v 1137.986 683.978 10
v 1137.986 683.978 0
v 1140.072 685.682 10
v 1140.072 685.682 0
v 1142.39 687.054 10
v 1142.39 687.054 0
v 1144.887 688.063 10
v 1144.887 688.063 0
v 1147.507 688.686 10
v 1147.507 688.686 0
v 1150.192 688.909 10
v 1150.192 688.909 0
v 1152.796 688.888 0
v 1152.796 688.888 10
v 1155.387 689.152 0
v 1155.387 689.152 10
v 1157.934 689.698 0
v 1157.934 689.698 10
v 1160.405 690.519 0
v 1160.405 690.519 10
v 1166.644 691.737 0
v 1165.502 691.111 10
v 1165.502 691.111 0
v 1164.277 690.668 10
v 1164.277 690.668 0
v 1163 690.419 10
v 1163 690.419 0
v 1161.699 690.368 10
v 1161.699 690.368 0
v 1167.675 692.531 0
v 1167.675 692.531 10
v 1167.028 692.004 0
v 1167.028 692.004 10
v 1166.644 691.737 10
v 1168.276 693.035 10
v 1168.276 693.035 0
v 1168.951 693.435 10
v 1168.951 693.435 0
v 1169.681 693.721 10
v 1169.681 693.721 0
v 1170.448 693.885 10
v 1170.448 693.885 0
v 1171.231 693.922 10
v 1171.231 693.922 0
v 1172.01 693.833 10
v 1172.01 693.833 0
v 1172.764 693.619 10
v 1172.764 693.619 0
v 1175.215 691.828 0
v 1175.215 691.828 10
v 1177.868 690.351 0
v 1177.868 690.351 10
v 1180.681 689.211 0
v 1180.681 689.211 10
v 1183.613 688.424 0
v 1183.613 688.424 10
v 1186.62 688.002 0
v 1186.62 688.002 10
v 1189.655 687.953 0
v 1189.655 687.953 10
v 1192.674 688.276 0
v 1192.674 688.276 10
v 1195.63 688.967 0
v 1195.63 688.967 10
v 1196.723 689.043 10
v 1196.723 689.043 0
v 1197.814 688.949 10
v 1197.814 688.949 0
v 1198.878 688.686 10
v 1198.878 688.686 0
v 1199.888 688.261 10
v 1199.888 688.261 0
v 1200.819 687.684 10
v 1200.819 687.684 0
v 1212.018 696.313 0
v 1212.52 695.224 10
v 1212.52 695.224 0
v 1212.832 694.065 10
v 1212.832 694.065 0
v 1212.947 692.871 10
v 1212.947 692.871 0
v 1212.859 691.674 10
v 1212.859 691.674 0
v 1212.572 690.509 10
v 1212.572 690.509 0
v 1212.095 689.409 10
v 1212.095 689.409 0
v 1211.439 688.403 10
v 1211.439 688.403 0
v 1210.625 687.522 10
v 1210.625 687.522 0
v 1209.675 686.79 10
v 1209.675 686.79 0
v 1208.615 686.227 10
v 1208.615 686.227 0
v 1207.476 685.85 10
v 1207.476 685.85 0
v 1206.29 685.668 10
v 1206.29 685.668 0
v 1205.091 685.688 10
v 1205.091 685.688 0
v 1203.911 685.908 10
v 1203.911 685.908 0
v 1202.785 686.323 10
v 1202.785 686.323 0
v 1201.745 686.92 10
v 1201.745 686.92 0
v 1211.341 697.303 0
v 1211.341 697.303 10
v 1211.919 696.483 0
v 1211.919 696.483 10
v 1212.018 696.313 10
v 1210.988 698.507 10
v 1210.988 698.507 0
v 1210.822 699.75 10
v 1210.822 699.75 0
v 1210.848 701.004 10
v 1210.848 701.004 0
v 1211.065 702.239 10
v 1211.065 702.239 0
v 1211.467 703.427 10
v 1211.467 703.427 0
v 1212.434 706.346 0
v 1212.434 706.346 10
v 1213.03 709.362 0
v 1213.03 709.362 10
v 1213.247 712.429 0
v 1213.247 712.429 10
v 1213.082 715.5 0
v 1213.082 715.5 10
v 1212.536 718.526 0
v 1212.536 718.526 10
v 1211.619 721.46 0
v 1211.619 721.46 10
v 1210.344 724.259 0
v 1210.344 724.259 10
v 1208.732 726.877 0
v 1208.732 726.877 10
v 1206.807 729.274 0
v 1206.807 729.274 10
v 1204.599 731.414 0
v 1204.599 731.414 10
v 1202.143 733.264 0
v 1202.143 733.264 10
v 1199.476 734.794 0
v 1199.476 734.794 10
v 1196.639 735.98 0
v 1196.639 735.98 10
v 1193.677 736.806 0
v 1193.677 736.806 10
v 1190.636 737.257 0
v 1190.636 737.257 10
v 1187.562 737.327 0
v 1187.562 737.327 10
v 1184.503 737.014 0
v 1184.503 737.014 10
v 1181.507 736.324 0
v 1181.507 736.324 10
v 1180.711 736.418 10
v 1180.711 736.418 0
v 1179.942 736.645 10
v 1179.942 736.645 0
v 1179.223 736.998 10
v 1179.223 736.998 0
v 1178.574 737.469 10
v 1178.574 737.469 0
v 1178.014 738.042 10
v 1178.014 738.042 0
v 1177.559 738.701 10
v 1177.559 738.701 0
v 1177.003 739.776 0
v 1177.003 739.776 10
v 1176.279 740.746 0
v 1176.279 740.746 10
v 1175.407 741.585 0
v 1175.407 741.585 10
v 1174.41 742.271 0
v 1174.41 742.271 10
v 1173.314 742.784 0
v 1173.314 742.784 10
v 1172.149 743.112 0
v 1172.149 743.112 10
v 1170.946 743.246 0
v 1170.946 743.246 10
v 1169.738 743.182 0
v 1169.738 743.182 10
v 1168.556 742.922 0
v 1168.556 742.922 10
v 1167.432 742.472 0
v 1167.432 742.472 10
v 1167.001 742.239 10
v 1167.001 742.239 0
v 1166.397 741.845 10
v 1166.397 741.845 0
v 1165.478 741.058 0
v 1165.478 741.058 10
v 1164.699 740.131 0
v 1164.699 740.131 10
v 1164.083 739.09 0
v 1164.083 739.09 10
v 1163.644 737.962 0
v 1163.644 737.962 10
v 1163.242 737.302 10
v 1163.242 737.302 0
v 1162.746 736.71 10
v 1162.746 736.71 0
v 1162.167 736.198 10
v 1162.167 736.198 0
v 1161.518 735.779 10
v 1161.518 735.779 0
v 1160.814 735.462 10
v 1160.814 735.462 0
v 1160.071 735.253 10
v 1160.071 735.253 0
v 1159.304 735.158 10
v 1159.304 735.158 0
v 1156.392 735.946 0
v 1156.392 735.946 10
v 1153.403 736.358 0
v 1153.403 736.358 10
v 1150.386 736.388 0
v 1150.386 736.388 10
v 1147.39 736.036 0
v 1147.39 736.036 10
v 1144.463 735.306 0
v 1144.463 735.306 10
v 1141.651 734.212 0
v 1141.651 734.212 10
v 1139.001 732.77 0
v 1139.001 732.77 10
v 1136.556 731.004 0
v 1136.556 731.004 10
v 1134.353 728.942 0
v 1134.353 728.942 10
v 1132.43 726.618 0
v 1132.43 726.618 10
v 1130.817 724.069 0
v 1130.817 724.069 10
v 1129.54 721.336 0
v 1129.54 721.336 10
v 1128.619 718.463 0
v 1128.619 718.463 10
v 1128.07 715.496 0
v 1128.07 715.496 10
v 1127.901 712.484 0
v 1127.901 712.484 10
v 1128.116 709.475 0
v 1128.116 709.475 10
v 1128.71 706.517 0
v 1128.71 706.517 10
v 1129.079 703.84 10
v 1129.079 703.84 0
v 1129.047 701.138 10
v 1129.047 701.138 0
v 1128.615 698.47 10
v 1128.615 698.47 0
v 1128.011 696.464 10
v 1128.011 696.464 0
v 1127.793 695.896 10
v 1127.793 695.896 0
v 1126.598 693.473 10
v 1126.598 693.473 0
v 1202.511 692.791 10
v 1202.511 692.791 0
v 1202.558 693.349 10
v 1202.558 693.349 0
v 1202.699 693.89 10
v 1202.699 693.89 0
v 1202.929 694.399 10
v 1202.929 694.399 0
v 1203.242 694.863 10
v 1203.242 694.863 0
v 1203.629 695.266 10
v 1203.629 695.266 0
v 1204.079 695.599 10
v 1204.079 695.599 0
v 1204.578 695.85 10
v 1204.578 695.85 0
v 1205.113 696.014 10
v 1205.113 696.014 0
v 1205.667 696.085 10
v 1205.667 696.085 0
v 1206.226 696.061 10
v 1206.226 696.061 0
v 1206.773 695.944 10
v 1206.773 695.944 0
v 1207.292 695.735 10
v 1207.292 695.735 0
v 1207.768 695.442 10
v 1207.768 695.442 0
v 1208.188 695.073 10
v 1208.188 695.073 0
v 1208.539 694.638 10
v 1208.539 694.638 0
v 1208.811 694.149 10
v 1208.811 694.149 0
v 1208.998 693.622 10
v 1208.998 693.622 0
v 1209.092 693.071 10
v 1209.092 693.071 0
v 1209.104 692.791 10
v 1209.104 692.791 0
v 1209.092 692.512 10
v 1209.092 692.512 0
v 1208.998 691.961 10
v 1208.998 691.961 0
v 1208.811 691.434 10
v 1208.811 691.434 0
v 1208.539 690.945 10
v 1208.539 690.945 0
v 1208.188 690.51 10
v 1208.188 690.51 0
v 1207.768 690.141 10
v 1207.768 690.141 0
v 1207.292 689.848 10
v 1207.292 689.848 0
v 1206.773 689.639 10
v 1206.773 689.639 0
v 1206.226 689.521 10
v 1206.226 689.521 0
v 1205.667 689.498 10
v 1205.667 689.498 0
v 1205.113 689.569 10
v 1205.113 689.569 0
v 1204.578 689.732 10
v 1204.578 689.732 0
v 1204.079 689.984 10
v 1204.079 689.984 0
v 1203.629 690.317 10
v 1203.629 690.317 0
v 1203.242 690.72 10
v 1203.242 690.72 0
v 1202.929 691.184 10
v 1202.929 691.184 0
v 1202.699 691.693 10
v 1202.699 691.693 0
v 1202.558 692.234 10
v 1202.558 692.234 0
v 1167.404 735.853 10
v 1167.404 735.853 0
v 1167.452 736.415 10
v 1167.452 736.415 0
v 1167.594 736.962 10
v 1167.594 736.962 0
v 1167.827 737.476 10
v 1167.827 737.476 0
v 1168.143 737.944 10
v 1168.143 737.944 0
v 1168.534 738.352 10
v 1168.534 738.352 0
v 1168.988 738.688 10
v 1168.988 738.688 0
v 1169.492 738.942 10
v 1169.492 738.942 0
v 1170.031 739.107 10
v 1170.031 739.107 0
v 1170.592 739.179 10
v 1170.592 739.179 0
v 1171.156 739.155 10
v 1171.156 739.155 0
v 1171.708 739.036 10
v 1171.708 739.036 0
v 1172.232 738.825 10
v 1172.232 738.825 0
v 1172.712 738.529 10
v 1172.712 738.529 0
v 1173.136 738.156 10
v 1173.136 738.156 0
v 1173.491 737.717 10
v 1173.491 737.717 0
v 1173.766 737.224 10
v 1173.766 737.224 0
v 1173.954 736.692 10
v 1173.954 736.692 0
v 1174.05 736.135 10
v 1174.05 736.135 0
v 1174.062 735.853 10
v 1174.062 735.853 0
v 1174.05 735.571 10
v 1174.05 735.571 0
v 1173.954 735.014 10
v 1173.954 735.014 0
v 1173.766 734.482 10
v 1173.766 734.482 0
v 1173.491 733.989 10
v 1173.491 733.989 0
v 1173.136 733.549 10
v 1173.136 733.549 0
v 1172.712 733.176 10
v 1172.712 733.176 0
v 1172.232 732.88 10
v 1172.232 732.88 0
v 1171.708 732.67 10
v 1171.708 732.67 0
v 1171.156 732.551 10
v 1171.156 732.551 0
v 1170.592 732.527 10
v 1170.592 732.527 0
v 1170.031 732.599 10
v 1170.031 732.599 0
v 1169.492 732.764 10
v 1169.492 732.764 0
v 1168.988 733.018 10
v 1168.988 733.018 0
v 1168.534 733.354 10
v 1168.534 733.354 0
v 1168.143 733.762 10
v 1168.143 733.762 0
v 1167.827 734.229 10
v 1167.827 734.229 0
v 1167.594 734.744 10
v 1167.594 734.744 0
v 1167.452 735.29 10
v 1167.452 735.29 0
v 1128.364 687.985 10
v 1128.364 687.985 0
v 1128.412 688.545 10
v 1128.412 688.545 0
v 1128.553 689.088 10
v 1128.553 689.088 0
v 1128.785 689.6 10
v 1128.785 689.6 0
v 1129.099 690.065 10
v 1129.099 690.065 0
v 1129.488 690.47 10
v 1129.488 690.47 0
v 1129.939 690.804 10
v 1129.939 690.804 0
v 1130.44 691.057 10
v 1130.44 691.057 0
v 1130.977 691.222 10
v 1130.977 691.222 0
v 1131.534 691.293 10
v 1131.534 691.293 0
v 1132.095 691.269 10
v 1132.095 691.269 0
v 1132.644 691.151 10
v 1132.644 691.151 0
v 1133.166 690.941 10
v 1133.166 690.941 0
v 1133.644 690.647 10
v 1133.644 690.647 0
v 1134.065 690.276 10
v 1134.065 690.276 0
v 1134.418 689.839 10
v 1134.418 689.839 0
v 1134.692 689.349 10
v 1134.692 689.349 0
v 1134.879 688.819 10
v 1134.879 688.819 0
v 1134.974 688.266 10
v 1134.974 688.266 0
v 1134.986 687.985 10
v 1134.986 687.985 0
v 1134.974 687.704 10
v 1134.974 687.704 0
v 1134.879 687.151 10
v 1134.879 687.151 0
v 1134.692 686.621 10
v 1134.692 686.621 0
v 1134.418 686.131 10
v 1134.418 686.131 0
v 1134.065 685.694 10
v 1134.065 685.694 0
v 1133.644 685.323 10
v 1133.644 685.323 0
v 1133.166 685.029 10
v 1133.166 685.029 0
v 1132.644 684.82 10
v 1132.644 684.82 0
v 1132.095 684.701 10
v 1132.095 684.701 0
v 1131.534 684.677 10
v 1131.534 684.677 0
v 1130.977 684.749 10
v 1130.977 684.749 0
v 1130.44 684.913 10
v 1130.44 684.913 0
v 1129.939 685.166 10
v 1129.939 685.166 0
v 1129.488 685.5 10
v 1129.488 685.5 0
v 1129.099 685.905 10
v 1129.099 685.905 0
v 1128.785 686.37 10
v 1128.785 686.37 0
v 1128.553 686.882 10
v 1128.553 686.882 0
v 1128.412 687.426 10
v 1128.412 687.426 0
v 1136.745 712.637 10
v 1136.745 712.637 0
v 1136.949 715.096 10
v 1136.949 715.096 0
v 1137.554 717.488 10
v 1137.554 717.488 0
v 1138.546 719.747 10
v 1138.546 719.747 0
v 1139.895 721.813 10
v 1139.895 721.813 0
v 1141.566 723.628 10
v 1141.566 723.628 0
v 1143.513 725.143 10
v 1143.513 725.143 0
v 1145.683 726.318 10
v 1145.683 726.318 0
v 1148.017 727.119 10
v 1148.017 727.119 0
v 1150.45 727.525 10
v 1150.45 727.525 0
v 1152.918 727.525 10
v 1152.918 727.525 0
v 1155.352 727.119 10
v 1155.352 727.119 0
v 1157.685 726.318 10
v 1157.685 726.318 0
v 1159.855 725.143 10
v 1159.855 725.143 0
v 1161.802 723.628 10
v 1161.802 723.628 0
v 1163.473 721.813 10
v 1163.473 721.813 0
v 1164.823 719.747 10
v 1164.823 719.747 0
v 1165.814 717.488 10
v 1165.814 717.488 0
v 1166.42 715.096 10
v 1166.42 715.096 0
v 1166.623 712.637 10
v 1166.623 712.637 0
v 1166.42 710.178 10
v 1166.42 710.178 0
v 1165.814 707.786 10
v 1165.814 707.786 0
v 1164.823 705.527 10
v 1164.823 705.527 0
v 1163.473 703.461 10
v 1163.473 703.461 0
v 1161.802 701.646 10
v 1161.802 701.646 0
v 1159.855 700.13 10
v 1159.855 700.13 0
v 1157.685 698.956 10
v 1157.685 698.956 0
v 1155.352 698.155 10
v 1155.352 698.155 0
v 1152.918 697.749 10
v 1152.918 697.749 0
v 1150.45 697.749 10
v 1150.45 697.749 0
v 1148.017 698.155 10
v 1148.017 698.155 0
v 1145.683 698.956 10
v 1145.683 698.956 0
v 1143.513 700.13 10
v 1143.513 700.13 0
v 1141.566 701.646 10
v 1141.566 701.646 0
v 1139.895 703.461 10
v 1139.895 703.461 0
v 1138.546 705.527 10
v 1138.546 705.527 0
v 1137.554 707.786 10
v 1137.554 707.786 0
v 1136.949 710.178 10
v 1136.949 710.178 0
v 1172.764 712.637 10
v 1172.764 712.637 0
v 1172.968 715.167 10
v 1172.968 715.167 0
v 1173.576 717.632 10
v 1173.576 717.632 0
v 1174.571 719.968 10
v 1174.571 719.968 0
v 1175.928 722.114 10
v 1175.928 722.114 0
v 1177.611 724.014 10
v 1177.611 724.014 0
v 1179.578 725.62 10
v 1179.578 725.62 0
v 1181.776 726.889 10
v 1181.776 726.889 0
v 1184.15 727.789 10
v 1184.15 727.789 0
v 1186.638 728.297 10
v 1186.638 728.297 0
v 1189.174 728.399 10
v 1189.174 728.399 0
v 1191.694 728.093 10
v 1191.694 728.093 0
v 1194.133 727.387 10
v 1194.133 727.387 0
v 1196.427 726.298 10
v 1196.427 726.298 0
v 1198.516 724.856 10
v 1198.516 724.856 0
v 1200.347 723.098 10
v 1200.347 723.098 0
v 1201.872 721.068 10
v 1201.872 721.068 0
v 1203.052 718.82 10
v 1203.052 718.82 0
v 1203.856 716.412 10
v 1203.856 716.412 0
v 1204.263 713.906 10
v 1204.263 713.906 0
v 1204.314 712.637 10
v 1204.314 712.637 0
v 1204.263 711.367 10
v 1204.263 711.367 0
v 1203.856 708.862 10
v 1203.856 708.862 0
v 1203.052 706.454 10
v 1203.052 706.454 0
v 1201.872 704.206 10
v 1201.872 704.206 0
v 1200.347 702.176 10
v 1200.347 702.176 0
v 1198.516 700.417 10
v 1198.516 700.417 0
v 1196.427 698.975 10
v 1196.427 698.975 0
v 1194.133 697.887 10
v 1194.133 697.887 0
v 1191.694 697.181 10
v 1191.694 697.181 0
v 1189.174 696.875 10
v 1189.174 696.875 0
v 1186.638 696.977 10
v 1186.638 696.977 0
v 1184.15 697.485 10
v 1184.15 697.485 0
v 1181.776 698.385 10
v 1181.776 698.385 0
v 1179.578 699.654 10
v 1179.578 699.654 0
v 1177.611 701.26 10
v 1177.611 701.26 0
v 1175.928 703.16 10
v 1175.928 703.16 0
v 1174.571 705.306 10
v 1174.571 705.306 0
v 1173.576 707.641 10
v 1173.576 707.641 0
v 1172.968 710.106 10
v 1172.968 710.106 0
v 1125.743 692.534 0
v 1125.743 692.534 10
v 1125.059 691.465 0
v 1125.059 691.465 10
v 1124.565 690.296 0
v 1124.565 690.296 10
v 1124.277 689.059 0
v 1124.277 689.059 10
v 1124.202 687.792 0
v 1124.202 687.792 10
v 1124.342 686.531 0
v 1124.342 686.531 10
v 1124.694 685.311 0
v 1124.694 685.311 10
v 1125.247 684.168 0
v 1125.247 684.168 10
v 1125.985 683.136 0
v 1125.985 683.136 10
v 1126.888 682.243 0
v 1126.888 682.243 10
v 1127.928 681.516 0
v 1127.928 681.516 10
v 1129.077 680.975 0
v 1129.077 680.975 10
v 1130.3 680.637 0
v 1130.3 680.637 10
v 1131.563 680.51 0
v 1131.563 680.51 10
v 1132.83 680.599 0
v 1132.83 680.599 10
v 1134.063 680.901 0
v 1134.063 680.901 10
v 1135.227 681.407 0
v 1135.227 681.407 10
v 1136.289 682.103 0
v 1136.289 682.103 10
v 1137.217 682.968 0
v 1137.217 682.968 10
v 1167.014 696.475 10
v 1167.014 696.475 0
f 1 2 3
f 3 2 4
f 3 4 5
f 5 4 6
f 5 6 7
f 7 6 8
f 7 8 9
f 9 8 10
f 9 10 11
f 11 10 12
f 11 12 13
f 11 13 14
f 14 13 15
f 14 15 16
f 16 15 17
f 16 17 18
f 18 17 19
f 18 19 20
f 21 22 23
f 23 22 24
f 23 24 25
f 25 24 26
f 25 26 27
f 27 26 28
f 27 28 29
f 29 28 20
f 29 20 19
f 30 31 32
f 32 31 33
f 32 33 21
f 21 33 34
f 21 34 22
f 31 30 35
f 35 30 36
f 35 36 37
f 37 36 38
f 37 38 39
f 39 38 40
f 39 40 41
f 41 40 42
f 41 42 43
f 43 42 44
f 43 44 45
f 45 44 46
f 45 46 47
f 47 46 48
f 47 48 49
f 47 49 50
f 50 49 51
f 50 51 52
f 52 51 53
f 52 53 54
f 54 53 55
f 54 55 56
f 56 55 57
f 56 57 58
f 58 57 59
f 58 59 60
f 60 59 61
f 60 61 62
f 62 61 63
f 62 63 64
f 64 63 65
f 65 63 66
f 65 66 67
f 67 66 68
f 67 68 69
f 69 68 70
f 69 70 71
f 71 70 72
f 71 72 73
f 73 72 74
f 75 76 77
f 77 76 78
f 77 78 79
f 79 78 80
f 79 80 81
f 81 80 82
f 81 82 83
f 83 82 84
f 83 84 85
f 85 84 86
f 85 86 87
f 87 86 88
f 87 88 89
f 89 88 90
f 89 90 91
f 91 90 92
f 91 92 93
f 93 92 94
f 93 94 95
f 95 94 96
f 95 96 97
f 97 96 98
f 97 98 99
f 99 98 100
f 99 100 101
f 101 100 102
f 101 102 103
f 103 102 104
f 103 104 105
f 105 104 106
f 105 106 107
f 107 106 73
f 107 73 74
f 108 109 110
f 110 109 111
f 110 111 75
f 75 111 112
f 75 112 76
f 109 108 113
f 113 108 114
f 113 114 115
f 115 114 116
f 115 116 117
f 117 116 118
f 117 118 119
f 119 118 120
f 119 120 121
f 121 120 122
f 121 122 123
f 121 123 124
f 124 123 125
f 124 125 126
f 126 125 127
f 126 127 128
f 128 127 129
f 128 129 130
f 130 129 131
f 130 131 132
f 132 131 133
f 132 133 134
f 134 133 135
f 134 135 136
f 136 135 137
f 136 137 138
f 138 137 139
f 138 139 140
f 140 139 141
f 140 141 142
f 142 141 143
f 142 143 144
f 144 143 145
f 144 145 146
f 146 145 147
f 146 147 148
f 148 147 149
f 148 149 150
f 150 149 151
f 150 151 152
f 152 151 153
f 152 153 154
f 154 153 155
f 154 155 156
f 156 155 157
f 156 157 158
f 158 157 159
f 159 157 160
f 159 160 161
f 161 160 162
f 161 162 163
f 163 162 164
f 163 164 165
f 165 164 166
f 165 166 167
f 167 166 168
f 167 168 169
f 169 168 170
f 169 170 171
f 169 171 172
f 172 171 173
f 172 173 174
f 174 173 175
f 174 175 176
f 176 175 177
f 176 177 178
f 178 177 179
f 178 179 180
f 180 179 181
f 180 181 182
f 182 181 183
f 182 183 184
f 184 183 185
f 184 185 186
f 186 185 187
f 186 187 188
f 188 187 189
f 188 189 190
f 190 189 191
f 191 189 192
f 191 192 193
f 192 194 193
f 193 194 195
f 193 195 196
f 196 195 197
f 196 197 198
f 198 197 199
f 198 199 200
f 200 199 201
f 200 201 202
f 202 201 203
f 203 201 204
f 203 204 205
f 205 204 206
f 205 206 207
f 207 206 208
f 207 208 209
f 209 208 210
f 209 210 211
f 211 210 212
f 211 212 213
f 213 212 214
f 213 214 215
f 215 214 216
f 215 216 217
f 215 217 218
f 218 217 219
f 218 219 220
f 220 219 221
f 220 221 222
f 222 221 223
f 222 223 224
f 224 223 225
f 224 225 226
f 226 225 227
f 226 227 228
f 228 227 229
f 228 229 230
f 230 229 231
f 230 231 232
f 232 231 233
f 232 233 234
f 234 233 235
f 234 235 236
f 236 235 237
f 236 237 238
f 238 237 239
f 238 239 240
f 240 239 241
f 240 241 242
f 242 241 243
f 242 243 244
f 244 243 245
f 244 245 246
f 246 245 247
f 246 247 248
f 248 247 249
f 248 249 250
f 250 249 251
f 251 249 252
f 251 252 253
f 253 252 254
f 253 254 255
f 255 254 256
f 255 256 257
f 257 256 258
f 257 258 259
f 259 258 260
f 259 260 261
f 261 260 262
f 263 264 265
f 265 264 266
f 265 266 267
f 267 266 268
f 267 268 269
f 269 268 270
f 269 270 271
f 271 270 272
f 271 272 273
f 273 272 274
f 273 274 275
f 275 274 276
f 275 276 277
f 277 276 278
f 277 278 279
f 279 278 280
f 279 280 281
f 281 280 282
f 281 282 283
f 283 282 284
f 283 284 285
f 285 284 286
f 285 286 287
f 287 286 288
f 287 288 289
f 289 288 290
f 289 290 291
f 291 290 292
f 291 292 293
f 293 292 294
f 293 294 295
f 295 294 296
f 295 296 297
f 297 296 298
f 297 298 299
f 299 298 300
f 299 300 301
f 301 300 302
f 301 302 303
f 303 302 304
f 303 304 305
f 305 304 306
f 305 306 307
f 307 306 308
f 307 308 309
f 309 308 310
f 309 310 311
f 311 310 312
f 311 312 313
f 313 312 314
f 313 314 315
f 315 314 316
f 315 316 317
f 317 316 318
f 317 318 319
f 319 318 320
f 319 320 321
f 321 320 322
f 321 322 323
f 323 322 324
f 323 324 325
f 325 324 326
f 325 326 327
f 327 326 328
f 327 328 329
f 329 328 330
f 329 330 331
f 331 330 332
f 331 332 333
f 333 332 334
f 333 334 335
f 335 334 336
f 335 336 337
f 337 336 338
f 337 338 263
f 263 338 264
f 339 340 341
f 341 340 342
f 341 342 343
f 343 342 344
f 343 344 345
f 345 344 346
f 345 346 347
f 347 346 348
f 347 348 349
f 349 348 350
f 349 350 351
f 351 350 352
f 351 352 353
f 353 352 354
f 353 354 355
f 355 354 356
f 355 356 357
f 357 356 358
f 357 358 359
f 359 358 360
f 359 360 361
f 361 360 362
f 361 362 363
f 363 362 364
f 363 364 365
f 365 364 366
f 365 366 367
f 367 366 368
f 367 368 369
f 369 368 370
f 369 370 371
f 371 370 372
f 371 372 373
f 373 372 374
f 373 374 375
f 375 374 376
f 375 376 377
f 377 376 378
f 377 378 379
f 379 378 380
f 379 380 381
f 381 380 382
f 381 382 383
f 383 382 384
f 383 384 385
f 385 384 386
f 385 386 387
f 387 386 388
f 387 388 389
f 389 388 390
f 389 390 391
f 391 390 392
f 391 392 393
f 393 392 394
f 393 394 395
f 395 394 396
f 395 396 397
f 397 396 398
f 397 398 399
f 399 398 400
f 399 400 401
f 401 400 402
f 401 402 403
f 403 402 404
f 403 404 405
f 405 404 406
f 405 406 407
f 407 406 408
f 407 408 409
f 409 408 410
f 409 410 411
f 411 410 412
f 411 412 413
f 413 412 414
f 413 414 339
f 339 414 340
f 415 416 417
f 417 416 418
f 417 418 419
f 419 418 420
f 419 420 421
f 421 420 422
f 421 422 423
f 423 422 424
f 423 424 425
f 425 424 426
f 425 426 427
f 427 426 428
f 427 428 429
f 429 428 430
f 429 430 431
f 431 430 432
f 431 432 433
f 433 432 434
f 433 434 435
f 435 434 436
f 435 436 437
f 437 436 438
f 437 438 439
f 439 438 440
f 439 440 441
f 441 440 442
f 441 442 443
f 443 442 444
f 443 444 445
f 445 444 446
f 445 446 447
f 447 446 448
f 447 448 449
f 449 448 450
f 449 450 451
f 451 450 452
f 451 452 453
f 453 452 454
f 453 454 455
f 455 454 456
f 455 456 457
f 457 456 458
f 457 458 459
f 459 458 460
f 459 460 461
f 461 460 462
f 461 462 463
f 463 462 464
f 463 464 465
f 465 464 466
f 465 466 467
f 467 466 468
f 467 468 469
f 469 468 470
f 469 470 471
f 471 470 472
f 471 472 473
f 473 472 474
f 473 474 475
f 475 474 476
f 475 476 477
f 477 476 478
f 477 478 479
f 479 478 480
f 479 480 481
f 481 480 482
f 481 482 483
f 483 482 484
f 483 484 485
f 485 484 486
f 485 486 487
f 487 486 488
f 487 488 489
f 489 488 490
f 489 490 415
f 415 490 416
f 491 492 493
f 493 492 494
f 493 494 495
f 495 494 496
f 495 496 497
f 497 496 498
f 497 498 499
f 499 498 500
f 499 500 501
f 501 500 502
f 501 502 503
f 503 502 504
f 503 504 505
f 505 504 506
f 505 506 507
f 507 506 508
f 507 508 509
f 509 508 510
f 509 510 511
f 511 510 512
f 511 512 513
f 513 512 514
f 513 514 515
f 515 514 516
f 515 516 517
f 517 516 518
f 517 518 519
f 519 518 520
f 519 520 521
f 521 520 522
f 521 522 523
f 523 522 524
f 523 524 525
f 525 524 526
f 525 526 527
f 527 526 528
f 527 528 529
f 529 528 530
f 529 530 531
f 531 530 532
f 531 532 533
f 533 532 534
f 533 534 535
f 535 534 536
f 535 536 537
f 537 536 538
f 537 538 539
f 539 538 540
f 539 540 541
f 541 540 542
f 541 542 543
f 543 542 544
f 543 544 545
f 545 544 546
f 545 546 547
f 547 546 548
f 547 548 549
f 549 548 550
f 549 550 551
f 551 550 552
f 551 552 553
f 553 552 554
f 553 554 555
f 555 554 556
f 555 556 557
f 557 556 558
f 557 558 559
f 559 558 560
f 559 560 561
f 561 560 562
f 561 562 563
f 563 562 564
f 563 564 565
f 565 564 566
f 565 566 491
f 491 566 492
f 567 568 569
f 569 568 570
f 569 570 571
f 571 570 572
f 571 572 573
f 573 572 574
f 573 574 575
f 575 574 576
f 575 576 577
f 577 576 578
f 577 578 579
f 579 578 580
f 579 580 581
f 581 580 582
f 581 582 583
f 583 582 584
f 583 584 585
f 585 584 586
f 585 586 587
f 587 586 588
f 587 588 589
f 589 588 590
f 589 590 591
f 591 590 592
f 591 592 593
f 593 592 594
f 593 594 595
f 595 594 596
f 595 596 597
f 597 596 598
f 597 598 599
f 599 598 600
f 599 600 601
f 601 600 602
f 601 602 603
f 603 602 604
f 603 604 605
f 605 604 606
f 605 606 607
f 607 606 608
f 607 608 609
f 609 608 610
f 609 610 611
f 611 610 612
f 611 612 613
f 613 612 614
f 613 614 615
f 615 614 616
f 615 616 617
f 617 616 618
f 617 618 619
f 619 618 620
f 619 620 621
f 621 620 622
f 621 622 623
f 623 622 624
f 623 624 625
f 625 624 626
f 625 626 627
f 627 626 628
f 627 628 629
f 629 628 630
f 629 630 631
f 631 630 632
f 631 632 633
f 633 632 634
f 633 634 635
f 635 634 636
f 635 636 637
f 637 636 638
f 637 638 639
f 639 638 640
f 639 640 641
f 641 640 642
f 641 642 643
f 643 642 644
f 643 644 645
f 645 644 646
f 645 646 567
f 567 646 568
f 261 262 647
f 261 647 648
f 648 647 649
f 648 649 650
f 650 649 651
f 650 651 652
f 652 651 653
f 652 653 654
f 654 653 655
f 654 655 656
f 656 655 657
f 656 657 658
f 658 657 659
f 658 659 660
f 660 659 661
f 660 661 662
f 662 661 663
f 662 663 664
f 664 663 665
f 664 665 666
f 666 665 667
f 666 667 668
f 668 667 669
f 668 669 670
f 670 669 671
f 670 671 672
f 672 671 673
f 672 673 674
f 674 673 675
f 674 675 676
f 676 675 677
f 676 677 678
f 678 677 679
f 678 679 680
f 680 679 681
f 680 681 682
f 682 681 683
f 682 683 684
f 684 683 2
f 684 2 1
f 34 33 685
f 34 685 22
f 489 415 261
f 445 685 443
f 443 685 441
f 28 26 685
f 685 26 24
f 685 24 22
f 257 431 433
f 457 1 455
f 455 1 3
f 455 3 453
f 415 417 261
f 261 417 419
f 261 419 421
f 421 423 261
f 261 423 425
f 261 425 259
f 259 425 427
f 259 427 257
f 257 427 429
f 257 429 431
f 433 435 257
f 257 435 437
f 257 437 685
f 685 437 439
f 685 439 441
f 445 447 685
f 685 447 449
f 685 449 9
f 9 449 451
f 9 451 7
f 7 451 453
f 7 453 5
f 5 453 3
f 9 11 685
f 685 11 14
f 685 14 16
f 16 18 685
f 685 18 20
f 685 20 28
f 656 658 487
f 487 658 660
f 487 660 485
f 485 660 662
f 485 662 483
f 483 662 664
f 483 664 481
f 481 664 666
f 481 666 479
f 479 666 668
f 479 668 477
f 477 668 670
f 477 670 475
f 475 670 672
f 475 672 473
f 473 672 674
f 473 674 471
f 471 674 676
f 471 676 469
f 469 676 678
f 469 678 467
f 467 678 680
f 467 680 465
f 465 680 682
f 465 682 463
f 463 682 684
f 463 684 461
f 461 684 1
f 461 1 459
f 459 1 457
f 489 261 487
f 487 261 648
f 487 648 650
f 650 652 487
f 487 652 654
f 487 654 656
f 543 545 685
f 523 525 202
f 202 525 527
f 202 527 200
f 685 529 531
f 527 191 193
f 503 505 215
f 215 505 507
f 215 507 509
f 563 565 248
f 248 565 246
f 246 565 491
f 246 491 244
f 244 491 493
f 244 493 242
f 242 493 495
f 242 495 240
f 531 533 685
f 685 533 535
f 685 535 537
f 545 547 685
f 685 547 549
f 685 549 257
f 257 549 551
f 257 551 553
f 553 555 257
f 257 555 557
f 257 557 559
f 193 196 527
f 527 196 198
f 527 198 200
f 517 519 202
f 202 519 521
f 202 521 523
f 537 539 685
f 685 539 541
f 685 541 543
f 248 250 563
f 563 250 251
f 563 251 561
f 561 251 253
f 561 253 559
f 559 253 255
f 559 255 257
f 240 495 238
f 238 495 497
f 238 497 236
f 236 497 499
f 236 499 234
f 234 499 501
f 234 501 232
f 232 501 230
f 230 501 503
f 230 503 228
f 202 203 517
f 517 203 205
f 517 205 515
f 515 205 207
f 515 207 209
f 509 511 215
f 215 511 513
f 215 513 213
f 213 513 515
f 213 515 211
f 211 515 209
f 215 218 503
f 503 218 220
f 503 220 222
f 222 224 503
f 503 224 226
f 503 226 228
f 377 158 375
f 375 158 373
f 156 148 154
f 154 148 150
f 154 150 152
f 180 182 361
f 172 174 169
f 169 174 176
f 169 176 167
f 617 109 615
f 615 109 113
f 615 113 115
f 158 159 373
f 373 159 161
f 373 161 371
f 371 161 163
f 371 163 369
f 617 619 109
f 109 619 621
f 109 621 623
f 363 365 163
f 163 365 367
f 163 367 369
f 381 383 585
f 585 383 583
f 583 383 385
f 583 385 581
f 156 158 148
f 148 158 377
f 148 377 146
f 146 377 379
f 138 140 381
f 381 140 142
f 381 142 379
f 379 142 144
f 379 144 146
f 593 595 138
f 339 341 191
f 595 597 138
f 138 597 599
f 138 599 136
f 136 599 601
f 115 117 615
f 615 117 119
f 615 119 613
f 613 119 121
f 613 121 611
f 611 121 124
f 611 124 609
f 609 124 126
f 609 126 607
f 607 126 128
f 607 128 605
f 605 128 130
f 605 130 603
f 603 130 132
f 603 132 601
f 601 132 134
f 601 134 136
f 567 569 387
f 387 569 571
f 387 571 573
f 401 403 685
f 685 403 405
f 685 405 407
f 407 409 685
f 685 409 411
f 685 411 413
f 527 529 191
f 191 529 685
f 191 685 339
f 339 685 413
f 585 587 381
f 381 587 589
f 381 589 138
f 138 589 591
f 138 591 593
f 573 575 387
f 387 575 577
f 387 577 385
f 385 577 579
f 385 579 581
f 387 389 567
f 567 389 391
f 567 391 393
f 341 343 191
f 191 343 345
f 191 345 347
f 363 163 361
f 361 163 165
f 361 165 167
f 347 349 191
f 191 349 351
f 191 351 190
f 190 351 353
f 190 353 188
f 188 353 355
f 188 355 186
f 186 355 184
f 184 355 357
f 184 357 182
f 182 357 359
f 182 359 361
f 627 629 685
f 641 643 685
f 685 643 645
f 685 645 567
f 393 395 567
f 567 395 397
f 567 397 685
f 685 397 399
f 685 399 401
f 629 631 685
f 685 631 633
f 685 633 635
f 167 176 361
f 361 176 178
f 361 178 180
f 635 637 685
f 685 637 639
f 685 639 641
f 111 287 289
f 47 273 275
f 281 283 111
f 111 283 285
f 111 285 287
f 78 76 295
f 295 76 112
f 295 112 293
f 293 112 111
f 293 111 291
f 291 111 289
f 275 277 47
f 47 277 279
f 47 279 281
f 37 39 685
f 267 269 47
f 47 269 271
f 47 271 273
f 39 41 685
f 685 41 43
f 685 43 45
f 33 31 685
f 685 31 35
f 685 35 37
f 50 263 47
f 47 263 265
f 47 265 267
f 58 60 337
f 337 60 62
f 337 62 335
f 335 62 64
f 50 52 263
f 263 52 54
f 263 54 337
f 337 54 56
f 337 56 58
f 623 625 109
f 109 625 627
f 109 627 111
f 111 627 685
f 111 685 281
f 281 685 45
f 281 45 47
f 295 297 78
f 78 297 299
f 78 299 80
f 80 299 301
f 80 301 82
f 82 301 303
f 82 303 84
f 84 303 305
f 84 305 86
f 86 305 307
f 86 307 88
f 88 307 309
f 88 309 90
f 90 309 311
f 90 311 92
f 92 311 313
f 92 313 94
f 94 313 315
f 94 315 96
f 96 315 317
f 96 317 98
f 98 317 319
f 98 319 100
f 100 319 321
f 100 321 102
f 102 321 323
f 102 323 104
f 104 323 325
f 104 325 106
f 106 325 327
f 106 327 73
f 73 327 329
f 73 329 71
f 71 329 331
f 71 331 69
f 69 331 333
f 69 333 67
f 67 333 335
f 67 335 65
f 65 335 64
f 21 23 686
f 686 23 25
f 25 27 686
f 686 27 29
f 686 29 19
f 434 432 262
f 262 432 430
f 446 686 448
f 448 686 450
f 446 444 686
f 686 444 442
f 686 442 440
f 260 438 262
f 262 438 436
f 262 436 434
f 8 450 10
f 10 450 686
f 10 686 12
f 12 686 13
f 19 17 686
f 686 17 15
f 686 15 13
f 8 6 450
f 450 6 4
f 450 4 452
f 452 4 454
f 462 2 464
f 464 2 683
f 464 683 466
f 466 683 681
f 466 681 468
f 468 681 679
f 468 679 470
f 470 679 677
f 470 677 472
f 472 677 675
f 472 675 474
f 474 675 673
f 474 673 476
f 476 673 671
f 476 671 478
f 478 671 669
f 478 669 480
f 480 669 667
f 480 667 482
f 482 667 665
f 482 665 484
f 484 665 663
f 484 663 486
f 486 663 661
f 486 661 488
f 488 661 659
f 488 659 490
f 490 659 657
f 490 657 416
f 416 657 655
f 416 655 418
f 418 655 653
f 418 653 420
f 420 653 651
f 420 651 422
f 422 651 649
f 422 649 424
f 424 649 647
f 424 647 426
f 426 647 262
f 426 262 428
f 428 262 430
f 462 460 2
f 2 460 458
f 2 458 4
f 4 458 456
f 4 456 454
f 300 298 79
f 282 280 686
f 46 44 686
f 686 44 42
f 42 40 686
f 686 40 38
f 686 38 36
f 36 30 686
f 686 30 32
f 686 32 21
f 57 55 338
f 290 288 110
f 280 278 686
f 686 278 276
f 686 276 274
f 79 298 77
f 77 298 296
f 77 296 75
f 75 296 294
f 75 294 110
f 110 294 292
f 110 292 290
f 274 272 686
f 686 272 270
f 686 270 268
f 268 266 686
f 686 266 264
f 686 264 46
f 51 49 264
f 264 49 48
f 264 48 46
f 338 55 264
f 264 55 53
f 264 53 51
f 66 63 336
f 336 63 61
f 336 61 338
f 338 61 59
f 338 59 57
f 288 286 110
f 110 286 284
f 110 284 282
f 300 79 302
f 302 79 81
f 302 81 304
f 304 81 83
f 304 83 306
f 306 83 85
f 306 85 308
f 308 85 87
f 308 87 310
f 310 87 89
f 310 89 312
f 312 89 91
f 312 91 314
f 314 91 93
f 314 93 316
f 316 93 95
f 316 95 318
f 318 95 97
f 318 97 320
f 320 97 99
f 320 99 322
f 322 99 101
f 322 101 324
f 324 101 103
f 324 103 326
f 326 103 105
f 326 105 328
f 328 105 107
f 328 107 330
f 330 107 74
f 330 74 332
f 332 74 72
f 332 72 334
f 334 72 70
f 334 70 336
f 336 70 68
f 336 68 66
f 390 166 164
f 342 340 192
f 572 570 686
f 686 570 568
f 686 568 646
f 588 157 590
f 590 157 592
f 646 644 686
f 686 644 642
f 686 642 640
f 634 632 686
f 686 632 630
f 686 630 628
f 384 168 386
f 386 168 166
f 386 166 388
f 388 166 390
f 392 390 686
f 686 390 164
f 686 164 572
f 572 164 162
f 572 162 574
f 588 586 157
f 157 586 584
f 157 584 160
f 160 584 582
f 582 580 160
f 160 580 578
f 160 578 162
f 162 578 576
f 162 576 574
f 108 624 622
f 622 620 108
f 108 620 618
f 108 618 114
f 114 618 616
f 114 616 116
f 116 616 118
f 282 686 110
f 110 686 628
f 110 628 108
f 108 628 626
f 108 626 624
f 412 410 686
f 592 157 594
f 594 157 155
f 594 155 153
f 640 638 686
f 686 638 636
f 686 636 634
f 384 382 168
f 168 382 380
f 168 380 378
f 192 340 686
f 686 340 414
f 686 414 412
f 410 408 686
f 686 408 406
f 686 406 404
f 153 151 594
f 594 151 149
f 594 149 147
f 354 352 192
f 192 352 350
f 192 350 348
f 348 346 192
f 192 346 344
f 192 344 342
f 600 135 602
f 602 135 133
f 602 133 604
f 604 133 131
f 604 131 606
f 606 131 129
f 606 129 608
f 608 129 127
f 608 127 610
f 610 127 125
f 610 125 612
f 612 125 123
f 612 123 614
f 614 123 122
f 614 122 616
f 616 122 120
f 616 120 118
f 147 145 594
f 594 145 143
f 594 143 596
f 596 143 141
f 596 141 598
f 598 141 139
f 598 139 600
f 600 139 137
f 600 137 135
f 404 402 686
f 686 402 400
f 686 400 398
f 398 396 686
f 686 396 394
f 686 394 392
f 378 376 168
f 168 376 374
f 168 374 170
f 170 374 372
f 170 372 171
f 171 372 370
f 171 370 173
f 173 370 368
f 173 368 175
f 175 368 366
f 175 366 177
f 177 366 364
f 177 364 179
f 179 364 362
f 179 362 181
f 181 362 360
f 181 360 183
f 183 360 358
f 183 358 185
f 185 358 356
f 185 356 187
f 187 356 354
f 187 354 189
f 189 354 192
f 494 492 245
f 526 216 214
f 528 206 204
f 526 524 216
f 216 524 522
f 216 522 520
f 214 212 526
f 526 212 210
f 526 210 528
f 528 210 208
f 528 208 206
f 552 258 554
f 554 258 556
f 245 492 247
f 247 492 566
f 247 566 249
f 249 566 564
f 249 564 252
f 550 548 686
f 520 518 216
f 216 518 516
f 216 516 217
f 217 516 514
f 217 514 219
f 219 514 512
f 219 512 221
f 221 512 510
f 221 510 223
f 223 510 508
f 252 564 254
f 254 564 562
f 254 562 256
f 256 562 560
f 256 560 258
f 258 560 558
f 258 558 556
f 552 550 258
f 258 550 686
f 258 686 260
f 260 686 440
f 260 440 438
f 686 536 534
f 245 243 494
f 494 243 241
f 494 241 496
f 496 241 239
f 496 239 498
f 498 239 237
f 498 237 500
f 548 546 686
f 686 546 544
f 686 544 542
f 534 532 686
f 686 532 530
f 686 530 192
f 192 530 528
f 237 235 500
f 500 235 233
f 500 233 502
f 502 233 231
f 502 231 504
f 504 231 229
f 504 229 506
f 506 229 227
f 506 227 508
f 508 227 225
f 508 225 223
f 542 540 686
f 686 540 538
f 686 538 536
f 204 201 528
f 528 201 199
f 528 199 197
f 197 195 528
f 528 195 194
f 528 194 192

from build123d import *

# Parameters (mm, degrees)
SKETCH2_R           = 3.310722334
SKETCH2_R_2         = 3.296718814
SKETCH2_R_3         = 14.939183171
SKETCH2_R_4         = 15.775070875
SKETCH2_R_5         = 3.328969896
BOSS_EXTRUDE1_DEPTH = 10


with BuildPart() as part:
    # Sketch2 → Boss-Extrude1 (new body)
    with BuildSketch(Plane.XY):
        with BuildLine():
            ThreePointArc((1167.675319769, 692.531209966), (1170.060778441, 693.818219259), (1172.763939692, 693.618907326))
            ThreePointArc((1172.763939692, 693.618907326), (1183.613308441, 688.423787767), (1195.630078304, 688.967213524))
            ThreePointArc((1195.630078304, 688.967213524), (1198.351418182, 688.838111227), (1200.819062261, 687.683515696))
            ThreePointArc((1200.819062261, 687.683515696), (1210.625036277, 687.522306041), (1211.340535268, 697.303470396))
            ThreePointArc((1211.340535268, 697.303470396), (1210.809475012, 700.246380188), (1211.368402544, 703.184124739))
            ThreePointArc((1211.368402544, 703.184124739), (1211.41694342, 703.305912697), (1211.4674242, 703.42690945))
            ThreePointArc((1211.4674242, 703.42690945), (1206.80719309, 729.274429889), (1181.506693094, 736.324023269))
            ThreePointArc((1181.506693094, 736.324023269), (1179.223280206, 736.998421734), (1177.558977414, 738.701032648))
            ThreePointArc((1177.558977414, 738.701032648), (1170.340733714, 743.238904055), (1163.643592882, 737.962198293))
            ThreePointArc((1163.643592882, 737.962198293), (1161.850792017, 735.976541745), (1159.303859855, 735.157943289))
            ThreePointArc((1159.303859855, 735.157943289), (1135.421637358, 730.00830056), (1128.710038296, 706.517157342))
            ThreePointArc((1128.710038296, 706.517157342), (1128.880818562, 699.796244734), (1126.59806647, 693.472568978))
            ThreePointArc((1126.59806647, 693.472568978), (1126.887875726, 682.243065003), (1137.986275865, 683.978364196))
            ThreePointArc((1137.986275865, 683.978364196), (1143.619411431, 687.605871257), (1150.191627268, 688.908561852))
            ThreePointArc((1150.191627268, 688.908561852), (1155.387088921, 689.151648756), (1160.40529024, 690.518970431))
            ThreePointArc((1160.40529024, 690.518970431), (1164.277487038, 690.668174132), (1167.675319769, 692.531209966))
        make_face()
        with Locations((1131.674937322, 687.985100392)):
            Circle(SKETCH2_R, mode=Mode.SUBTRACT)
        with Locations((1205.807348969, 692.791475029)):
            Circle(SKETCH2_R_2, mode=Mode.SUBTRACT)
        with Locations((1151.684129253, 712.636857749)):
            Circle(SKETCH2_R_3, mode=Mode.SUBTRACT)
        with Locations((1188.539010567, 712.636857749)):
            Circle(SKETCH2_R_4, mode=Mode.SUBTRACT)
        with Locations((1170.732894481, 735.852853522)):
            Circle(SKETCH2_R_5, mode=Mode.SUBTRACT)
    extrude(amount=BOSS_EXTRUDE1_DEPTH)


solid = part.part
